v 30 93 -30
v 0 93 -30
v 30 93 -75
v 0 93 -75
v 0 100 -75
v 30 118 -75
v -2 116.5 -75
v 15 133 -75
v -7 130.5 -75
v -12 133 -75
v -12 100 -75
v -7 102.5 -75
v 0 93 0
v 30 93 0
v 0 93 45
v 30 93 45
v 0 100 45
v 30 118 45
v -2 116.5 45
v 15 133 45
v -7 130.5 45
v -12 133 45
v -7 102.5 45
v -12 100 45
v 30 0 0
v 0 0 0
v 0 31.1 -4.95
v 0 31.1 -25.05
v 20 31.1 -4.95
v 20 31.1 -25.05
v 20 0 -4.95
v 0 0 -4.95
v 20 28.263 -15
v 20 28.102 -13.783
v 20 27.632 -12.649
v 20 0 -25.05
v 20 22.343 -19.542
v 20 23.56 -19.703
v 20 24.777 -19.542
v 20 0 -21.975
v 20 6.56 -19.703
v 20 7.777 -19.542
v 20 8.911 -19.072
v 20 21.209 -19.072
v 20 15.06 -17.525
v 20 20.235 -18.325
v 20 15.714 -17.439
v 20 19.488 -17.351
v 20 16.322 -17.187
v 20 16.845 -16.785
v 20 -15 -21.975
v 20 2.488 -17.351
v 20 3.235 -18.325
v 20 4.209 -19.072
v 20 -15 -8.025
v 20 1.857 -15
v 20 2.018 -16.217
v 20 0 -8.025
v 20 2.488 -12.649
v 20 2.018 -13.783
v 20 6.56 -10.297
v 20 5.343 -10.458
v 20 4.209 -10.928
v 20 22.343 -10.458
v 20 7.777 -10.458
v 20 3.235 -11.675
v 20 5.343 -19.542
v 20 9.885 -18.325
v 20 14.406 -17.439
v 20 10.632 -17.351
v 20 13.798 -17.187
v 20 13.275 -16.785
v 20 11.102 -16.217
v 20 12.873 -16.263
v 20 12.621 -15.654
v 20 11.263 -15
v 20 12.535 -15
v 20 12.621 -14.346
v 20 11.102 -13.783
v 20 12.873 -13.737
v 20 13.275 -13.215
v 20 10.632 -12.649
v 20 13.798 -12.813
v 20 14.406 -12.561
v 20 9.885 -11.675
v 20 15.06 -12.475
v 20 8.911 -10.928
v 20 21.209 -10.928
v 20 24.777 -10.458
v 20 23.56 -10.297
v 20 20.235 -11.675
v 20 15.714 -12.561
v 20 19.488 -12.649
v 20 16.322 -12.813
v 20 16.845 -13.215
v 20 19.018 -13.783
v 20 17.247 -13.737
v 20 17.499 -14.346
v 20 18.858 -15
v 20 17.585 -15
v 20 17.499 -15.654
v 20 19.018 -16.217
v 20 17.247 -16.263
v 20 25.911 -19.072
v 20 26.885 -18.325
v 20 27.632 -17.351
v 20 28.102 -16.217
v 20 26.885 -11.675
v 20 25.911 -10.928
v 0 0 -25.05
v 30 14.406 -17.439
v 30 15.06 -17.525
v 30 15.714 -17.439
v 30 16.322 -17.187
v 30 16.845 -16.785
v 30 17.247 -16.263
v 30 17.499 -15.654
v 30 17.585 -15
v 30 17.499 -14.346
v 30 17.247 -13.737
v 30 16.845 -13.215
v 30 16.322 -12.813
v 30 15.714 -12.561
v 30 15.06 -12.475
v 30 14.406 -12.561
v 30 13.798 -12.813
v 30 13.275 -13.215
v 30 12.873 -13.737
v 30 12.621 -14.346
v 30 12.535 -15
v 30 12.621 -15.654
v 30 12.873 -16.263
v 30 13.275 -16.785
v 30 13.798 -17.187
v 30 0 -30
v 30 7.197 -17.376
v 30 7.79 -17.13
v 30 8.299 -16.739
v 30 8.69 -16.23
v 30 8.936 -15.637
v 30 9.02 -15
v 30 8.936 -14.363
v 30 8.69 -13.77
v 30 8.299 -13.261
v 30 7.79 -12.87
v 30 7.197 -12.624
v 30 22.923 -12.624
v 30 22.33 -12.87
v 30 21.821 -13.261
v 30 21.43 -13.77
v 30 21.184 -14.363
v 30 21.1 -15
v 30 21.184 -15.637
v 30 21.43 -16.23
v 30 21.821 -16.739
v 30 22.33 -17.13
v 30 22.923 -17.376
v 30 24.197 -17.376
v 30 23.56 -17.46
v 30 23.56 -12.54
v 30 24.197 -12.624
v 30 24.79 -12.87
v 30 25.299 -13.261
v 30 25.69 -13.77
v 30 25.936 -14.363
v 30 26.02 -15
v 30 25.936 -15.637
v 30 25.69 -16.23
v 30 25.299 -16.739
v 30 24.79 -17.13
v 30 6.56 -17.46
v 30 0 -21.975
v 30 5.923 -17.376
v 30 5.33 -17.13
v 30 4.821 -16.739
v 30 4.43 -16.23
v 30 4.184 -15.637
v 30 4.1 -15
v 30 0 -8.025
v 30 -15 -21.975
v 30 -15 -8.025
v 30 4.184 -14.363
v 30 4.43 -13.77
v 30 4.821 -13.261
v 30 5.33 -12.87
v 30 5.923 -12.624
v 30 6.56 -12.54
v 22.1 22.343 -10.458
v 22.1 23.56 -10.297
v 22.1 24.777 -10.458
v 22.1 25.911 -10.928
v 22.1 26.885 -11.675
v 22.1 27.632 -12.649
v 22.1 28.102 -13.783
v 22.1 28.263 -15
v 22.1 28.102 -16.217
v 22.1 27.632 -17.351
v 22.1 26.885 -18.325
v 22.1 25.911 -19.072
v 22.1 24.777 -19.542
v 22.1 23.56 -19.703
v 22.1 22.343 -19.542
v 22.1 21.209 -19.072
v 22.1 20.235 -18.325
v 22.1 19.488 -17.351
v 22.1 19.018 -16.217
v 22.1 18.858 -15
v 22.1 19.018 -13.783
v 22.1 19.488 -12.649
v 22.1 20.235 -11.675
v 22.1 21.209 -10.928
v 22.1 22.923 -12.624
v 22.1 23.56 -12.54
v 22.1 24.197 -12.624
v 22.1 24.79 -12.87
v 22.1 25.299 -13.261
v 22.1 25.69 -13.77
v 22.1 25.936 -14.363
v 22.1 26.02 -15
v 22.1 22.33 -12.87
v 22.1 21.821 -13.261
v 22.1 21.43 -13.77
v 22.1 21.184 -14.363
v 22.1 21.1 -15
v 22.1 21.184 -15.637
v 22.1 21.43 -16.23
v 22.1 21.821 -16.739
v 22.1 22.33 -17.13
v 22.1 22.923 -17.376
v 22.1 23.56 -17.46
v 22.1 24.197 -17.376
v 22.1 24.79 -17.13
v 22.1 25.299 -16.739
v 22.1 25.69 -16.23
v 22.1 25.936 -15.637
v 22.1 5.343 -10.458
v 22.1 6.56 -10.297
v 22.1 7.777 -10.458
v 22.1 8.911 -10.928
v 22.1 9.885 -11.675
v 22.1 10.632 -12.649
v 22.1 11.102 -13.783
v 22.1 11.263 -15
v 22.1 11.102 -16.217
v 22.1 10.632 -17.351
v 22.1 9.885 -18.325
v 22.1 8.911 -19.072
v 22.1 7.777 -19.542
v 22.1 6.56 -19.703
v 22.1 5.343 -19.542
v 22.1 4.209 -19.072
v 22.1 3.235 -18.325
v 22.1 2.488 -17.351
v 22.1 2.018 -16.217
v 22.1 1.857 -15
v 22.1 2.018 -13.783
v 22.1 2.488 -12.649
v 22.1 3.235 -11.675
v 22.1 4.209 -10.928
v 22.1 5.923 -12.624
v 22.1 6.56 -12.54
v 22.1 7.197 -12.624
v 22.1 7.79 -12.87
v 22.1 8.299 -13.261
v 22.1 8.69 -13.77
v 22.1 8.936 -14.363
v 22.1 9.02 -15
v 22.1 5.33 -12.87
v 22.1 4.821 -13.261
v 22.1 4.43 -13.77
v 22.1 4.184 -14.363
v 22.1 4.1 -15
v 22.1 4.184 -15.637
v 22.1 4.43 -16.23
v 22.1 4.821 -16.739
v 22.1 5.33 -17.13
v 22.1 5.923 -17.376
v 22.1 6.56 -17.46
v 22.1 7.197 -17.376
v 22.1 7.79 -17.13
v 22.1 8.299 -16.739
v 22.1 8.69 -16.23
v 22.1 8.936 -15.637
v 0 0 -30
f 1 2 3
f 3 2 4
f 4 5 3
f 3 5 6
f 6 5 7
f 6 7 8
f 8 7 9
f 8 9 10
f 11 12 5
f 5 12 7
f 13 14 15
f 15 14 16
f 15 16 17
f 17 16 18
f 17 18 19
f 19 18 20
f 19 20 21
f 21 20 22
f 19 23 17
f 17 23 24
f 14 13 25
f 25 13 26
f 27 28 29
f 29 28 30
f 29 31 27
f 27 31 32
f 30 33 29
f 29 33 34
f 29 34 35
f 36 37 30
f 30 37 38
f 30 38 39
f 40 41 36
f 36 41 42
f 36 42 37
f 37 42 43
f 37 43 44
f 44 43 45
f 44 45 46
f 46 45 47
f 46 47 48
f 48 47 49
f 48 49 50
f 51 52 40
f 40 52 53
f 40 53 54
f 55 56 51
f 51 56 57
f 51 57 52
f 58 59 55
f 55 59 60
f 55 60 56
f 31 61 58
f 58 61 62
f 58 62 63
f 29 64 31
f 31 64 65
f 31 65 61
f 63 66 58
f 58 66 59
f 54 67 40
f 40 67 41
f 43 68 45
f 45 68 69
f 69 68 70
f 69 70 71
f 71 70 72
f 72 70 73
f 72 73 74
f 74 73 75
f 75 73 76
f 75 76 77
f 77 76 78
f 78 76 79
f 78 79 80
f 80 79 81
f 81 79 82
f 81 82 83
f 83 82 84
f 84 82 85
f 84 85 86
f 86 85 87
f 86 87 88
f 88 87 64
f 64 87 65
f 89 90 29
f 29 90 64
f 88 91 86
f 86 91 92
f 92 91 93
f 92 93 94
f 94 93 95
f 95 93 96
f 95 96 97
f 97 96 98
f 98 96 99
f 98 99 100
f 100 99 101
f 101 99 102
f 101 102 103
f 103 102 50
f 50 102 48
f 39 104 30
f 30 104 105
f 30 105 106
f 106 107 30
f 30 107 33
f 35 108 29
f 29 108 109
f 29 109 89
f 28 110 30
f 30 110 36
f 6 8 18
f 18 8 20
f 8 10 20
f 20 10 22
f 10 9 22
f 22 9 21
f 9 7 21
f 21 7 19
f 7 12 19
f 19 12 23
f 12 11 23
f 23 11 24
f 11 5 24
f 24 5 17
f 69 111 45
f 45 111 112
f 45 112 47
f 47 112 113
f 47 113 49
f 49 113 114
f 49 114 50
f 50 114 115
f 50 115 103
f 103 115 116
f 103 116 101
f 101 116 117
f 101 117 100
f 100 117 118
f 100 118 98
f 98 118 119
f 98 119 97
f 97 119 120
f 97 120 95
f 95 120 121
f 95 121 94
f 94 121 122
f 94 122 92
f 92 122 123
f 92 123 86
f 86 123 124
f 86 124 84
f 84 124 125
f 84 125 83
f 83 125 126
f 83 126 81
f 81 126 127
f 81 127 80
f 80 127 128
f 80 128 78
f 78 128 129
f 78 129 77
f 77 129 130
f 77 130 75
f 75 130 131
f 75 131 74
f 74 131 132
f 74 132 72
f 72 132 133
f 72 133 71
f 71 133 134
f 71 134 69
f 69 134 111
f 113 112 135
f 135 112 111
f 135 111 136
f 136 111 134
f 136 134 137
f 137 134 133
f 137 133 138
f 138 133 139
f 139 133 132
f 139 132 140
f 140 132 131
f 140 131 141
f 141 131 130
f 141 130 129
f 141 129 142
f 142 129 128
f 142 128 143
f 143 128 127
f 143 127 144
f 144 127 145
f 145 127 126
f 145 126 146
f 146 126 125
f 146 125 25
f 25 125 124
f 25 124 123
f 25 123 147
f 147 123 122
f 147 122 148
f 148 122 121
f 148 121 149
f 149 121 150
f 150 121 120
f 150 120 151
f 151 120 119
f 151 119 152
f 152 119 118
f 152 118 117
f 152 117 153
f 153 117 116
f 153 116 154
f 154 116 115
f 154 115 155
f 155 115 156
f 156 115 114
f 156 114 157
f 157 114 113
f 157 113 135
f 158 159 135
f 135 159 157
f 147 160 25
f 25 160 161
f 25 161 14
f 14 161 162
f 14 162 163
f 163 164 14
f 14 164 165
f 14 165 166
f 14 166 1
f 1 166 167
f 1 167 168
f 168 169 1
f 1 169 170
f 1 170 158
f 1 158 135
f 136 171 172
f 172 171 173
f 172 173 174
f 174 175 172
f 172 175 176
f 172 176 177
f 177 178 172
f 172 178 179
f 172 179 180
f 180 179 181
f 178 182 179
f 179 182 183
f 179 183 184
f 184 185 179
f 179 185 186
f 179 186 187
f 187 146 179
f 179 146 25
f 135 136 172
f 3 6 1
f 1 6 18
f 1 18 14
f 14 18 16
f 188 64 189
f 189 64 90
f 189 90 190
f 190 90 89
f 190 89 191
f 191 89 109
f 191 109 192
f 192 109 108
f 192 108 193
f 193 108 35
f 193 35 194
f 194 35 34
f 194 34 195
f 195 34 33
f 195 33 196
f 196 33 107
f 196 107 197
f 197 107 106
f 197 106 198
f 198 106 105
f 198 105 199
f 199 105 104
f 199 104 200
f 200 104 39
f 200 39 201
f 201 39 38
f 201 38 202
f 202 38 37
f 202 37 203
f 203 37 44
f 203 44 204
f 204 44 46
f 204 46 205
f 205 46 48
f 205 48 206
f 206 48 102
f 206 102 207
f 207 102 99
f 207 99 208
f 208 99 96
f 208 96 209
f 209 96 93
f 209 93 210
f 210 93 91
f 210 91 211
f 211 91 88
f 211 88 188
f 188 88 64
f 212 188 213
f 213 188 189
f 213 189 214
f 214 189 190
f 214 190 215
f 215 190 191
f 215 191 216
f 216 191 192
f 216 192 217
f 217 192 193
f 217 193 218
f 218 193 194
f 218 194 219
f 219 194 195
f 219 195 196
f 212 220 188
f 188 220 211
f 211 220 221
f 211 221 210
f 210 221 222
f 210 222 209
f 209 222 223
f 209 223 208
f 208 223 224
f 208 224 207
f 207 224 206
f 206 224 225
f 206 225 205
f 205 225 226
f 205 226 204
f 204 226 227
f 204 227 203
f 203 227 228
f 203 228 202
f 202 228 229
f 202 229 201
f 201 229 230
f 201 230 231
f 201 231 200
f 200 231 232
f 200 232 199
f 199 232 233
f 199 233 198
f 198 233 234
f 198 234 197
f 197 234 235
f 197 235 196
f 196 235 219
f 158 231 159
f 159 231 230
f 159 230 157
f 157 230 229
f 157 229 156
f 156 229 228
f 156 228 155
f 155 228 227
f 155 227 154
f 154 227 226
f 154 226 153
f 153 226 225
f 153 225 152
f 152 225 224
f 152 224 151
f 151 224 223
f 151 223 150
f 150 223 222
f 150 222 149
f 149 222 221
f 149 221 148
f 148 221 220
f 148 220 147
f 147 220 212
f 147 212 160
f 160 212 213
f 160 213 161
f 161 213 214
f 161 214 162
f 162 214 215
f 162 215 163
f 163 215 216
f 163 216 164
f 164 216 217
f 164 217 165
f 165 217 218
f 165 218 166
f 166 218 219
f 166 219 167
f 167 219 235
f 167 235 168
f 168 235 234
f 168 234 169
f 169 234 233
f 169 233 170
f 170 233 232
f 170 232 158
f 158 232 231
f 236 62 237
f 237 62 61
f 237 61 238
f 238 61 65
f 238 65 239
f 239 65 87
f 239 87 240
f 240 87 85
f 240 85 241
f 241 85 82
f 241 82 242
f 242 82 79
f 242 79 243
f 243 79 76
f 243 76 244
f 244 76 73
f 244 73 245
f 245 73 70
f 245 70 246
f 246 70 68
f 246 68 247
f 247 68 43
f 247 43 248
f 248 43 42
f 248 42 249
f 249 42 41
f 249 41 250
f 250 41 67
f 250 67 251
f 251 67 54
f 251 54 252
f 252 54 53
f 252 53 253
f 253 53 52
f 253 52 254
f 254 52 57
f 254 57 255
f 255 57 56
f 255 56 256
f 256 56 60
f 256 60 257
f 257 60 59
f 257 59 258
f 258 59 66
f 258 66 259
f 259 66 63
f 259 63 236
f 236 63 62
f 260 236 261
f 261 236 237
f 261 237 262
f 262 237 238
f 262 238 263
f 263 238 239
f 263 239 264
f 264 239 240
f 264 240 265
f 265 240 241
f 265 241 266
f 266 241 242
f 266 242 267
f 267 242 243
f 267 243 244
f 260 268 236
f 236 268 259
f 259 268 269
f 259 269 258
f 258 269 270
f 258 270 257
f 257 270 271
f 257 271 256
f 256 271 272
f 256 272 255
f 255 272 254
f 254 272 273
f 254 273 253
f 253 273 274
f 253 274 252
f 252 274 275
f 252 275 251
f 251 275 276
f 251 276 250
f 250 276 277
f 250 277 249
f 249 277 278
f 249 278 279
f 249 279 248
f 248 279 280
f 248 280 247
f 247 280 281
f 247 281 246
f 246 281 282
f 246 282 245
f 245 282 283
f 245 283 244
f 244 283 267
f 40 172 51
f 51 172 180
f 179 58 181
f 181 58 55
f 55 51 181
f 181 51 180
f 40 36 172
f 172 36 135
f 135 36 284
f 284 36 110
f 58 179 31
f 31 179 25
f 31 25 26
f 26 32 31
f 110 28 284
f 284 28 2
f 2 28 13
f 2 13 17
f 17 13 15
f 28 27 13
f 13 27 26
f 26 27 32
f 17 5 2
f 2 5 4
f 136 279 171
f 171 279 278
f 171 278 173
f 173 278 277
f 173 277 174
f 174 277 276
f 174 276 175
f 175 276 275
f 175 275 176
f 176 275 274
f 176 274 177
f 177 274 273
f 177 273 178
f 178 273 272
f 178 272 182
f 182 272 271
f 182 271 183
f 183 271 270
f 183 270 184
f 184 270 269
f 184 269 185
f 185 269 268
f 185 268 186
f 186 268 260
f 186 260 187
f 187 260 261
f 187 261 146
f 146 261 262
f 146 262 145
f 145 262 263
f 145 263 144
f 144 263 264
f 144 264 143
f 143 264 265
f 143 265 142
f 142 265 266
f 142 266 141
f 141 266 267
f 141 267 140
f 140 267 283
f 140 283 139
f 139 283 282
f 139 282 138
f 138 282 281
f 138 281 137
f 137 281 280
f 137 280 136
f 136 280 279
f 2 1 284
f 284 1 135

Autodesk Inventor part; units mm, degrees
ref_plane "YZ Plane" through (0, 0, 0) normal (1, 0, 0) x (0, 1, 0)
ref_plane "XZ Plane" through (0, 0, 0) normal (0, 1, 0) x (-1, 0, 0)
sketch "Sketch1" plane through (0, 0, 0) normal (0, 0, 1) x (1, 0, 0)
  line L0 (0, 0) -> (25, 0)
  line L1 (25, 0) -> (25, 40)
  line L2 (25, 40) -> (0, 40)
  line L3 (0, 40) -> (0, 0)
  dimension "d1" = 25
  dimension "d2" = 40
  dimension "d3" = 25
extrude "Extrusion1" add sketch "Sketch1" against normal blind 30
sketch "Sketch2" plane through (25, 0, 0) normal (1, 0, 0) x (0, 0, -1)
  line L0 (0, 0) -> (30, 0) projected
  circle A0 centre (15, 6.56) radius 2.46
extrude "Extrusion2" cut sketch "Sketch2" against normal blind 30
sketch "Sketch3" plane through (0, 0, 0) normal (-1, 0, 0) x (0, 0, 1)
  line L0 (0, 0) -> (-30, 0) projected
  line L1 (-25.05, 0) -> (-4.95, 0)
  line L2 (-4.95, 0) -> (-4.95, 33.12)
  line L3 (-4.95, 33.12) -> (-25.05, 33.12)
  line L4 (-25.05, 33.12) -> (-25.05, 0)
  dimension "d11" = 20.1
extrude "Extrusion3" cut sketch "Sketch3" against normal blind 20
sketch "Sketch4" plane through (0, 0, 0) normal (0, -1, 0) x (1, 0, 0)
  line L0 (20, -4.95) -> (20, -25.05) projected
  line L1 (20, -15) -> (25, -15)
  line L2 (25, 0) -> (25, -30) projected
  line L3 (20, -8.025) -> (25, -8.025)
  line L4 (25, -8.025) -> (25, -21.975)
  line L5 (25, -21.975) -> (20, -21.975)
  line L6 (20, -21.975) -> (20, -8.025)
  line L7 (20, -8.025) -> (25, -21.975) construction
  line L8 (25, -8.025) -> (20, -21.975) construction
  line L9 (25, -12.54) -> (25, -17.46) projected
  point P0 (0, 0)
  point P1 (22.5, -15)
  dimension "d14" = 13.95
extrude "Extrusion4" add sketch "Sketch4" along normal blind 15
sketch "Sketch5" plane through (20, 0, 0) normal (-1, 0, 0) x (0, 0, 1)
  circle A0 centre (-15, 6.56) radius 2.46 projected
  circle A1 centre (-15, 6.56) radius 4.7025
  circle A2 centre (-15, 6.56) radius 2.46 projected
  circle A3 centre (-15, 6.56) radius 2.46
  point P0 (0, 0)
  dimension "d17" = 9.405
extrude "Extrusion5" cut sketch "Sketch5" against normal blind 2.1
sketch "Sketch6" plane through (25, 0, 0) normal (1, 0, 0) x (0, 0, -1)
  circle A0 centre (15, 6.56) radius 4.7025 projected
  line L0 (15, 6.56) -> (15, 23.56)
  circle A1 centre (15, 23.56) radius 2.46
  point P0 (0, 0)
  dimension "d20" = 17
  dimension "d21" = 4.92
extrude "Extrusion6" cut sketch "Sketch6" against normal blind 10 contours A1
sketch "Sketch7" plane through (20, 0, 0) normal (-1, 0, 0) x (0, 0, 1)
  circle A0 centre (-15, 23.56) radius 2.46 projected
  circle A1 centre (-15, 23.56) radius 4.7025
  point P0 (0, 0)
  dimension "d24" = 9.405
extrude "Extrusion7" cut sketch "Sketch7" against normal blind 2.1
sketch "Sketch9" plane through (25, 0, 0) normal (1, 0, 0) x (0, 0, -1)
  circle A0 centre (15, 6.56) radius 2.46 projected
  circle A1 centre (15, 6.56) radius 2.46
  circle A2 centre (15, 23.56) radius 2.46 projected
  circle A3 centre (15, 23.56) radius 2.46
  line L0 (30, 40) -> (30, 0) projected
  line L1 (30, 0) -> (30, 40)
  line L2 (30, 40) -> (0, 40)
  line L3 (0, 40) -> (0, 0)
  line L4 (0, 0) -> (8.025, 0) projected
  line L5 (21.975, 0) -> (21.975, -15)
  line L6 (21.975, -15) -> (8.025, -15)
  line L7 (8.025, -15) -> (8.025, 0)
  line L8 (0, 0) -> (8.025, 0)
  line L9 (21.975, 0) -> (30, 0)
extrude "Extrusion8" add sketch "Sketch9" along normal blind 5
sketch "Sketch10" plane through (0, 40, 0) normal (0, 1, 0) x (1, 0, 0)
  line L0 (0, 30) -> (30, 30) projected
  line L1 (30, 0) -> (0, 0) projected
  line L2 (0, 30) -> (30, 30)
  line L3 (30, 30) -> (30, 0)
  line L4 (30, 0) -> (0, 0)
  line L5 (0, 0) -> (0, 30)
extrude "Extrusion9" add sketch "Sketch10" along normal blind 30
sketch "Sketch12" plane through (30, 0, 0) normal (1, 0, 0) x (0, 0, -1)
  circle A0 centre (15, 6.56) radius 2.46 projected
  line L0 (15, 6.56) -> (15, 15.06)
  circle A1 centre (15, 15.06) radius 2.525
  point P0 (0, 0)
  dimension "d31" = 8.5
  dimension "d33" = 5.05
extrude "Extrusion10" cut sketch "Sketch12" against normal blind 30 contours A1
sketch "Sketch14" plane through (0, 0, 0) normal (0, 0, 1) x (1, 0, 0)
  line L0 (30, 70) -> (0, 70) projected
  line L1 (0, 70) -> (0, 85)
  line L2 (30, 0) -> (30, 70) projected
  line L3 (30, 118) -> (30, 70)
  line L4 (30, 105) -> (30, 100)
  line L5 (-12, 133) -> (15, 133)
  line L6 (-7, 130.5) -> (-12, 133)
  line L7 (-7, 130.5) -> (-2, 116.5)
  line L8 (-7, 102.5) -> (-12, 100)
  line L9 (-7, 102.5) -> (-2, 116.5)
  line L10 (30, 118) -> (15, 133)
  line L11 (0, 100) -> (-12, 100)
  line L12 (0, 100) -> (0, 85)
  point P0 (0, 0)
  dimension "d79" = 12
extrude "Extrusion12" add sketch "Sketch14" against normal blind 30
sketch "Sketch15" plane through (0, 0, -25.05) normal (-1, 0, 0) x (0, 0, 1)
  line L0 (0, 33.12) -> (20.1, 33.12) projected
  line L1 (20.1, 33.12) -> (20.1, 0) projected
  line L2 (0, 33.12) -> (20.1, 33.12)
  line L3 (20.1, 33.12) -> (20.1, 31.1)
  line L4 (20.1, 31.1) -> (0, 31.1)
  line L5 (0, 31.1) -> (0, 33.12)
  point P0 (25.05, 0)
  dimension "d57" = 2.02
extrude "Extrusion13" add sketch "Sketch15" against normal blind 20
sketch "Sketch22" plane through (0, 0, 0) normal (0, 0, 1) x (1, 0, 0)
  line L0 (0, 100) -> (-12, 100) projected
  line L1 (0, 100) -> (-12, 100)
  line L2 (-12, 100) -> (-7, 102.5) projected
  line L3 (-12, 100) -> (-7, 102.5)
  line L4 (-7, 102.5) -> (-2, 116.5) projected
  line L5 (-7, 102.5) -> (-2, 116.5)
  line L6 (-2, 116.5) -> (-7, 130.5) projected
  line L7 (-2, 116.5) -> (-7, 130.5)
  line L8 (-7, 130.5) -> (-12, 133) projected
  line L9 (-7, 130.5) -> (-12, 133)
  line L10 (-12, 133) -> (15, 133) projected
  line L11 (-12, 133) -> (15, 133)
  line L12 (15, 133) -> (30, 118) projected
  line L13 (15, 133) -> (30, 118)
  line L14 (30, 118) -> (30, 93)
  line L15 (30, 0) -> (30, 118) projected
  line L16 (30, 93) -> (0, 93)
  line L17 (0, 100) -> (0, 0) projected
  line L18 (0, 93) -> (0, 100)
  dimension "d80" = 25
extrude "Extrusion14" add sketch "Sketch22" along normal blind 45
ref_plane "Work Plane1" through (0, 0, -15) normal (0, 0, 1) x (1, 0, 0)
mirror "Mirror1" about plane through (0, 0, -15) normal (0, 0, 1) of "Extrusion14"
properties part number "rec_b_28mm_x_120mm"
